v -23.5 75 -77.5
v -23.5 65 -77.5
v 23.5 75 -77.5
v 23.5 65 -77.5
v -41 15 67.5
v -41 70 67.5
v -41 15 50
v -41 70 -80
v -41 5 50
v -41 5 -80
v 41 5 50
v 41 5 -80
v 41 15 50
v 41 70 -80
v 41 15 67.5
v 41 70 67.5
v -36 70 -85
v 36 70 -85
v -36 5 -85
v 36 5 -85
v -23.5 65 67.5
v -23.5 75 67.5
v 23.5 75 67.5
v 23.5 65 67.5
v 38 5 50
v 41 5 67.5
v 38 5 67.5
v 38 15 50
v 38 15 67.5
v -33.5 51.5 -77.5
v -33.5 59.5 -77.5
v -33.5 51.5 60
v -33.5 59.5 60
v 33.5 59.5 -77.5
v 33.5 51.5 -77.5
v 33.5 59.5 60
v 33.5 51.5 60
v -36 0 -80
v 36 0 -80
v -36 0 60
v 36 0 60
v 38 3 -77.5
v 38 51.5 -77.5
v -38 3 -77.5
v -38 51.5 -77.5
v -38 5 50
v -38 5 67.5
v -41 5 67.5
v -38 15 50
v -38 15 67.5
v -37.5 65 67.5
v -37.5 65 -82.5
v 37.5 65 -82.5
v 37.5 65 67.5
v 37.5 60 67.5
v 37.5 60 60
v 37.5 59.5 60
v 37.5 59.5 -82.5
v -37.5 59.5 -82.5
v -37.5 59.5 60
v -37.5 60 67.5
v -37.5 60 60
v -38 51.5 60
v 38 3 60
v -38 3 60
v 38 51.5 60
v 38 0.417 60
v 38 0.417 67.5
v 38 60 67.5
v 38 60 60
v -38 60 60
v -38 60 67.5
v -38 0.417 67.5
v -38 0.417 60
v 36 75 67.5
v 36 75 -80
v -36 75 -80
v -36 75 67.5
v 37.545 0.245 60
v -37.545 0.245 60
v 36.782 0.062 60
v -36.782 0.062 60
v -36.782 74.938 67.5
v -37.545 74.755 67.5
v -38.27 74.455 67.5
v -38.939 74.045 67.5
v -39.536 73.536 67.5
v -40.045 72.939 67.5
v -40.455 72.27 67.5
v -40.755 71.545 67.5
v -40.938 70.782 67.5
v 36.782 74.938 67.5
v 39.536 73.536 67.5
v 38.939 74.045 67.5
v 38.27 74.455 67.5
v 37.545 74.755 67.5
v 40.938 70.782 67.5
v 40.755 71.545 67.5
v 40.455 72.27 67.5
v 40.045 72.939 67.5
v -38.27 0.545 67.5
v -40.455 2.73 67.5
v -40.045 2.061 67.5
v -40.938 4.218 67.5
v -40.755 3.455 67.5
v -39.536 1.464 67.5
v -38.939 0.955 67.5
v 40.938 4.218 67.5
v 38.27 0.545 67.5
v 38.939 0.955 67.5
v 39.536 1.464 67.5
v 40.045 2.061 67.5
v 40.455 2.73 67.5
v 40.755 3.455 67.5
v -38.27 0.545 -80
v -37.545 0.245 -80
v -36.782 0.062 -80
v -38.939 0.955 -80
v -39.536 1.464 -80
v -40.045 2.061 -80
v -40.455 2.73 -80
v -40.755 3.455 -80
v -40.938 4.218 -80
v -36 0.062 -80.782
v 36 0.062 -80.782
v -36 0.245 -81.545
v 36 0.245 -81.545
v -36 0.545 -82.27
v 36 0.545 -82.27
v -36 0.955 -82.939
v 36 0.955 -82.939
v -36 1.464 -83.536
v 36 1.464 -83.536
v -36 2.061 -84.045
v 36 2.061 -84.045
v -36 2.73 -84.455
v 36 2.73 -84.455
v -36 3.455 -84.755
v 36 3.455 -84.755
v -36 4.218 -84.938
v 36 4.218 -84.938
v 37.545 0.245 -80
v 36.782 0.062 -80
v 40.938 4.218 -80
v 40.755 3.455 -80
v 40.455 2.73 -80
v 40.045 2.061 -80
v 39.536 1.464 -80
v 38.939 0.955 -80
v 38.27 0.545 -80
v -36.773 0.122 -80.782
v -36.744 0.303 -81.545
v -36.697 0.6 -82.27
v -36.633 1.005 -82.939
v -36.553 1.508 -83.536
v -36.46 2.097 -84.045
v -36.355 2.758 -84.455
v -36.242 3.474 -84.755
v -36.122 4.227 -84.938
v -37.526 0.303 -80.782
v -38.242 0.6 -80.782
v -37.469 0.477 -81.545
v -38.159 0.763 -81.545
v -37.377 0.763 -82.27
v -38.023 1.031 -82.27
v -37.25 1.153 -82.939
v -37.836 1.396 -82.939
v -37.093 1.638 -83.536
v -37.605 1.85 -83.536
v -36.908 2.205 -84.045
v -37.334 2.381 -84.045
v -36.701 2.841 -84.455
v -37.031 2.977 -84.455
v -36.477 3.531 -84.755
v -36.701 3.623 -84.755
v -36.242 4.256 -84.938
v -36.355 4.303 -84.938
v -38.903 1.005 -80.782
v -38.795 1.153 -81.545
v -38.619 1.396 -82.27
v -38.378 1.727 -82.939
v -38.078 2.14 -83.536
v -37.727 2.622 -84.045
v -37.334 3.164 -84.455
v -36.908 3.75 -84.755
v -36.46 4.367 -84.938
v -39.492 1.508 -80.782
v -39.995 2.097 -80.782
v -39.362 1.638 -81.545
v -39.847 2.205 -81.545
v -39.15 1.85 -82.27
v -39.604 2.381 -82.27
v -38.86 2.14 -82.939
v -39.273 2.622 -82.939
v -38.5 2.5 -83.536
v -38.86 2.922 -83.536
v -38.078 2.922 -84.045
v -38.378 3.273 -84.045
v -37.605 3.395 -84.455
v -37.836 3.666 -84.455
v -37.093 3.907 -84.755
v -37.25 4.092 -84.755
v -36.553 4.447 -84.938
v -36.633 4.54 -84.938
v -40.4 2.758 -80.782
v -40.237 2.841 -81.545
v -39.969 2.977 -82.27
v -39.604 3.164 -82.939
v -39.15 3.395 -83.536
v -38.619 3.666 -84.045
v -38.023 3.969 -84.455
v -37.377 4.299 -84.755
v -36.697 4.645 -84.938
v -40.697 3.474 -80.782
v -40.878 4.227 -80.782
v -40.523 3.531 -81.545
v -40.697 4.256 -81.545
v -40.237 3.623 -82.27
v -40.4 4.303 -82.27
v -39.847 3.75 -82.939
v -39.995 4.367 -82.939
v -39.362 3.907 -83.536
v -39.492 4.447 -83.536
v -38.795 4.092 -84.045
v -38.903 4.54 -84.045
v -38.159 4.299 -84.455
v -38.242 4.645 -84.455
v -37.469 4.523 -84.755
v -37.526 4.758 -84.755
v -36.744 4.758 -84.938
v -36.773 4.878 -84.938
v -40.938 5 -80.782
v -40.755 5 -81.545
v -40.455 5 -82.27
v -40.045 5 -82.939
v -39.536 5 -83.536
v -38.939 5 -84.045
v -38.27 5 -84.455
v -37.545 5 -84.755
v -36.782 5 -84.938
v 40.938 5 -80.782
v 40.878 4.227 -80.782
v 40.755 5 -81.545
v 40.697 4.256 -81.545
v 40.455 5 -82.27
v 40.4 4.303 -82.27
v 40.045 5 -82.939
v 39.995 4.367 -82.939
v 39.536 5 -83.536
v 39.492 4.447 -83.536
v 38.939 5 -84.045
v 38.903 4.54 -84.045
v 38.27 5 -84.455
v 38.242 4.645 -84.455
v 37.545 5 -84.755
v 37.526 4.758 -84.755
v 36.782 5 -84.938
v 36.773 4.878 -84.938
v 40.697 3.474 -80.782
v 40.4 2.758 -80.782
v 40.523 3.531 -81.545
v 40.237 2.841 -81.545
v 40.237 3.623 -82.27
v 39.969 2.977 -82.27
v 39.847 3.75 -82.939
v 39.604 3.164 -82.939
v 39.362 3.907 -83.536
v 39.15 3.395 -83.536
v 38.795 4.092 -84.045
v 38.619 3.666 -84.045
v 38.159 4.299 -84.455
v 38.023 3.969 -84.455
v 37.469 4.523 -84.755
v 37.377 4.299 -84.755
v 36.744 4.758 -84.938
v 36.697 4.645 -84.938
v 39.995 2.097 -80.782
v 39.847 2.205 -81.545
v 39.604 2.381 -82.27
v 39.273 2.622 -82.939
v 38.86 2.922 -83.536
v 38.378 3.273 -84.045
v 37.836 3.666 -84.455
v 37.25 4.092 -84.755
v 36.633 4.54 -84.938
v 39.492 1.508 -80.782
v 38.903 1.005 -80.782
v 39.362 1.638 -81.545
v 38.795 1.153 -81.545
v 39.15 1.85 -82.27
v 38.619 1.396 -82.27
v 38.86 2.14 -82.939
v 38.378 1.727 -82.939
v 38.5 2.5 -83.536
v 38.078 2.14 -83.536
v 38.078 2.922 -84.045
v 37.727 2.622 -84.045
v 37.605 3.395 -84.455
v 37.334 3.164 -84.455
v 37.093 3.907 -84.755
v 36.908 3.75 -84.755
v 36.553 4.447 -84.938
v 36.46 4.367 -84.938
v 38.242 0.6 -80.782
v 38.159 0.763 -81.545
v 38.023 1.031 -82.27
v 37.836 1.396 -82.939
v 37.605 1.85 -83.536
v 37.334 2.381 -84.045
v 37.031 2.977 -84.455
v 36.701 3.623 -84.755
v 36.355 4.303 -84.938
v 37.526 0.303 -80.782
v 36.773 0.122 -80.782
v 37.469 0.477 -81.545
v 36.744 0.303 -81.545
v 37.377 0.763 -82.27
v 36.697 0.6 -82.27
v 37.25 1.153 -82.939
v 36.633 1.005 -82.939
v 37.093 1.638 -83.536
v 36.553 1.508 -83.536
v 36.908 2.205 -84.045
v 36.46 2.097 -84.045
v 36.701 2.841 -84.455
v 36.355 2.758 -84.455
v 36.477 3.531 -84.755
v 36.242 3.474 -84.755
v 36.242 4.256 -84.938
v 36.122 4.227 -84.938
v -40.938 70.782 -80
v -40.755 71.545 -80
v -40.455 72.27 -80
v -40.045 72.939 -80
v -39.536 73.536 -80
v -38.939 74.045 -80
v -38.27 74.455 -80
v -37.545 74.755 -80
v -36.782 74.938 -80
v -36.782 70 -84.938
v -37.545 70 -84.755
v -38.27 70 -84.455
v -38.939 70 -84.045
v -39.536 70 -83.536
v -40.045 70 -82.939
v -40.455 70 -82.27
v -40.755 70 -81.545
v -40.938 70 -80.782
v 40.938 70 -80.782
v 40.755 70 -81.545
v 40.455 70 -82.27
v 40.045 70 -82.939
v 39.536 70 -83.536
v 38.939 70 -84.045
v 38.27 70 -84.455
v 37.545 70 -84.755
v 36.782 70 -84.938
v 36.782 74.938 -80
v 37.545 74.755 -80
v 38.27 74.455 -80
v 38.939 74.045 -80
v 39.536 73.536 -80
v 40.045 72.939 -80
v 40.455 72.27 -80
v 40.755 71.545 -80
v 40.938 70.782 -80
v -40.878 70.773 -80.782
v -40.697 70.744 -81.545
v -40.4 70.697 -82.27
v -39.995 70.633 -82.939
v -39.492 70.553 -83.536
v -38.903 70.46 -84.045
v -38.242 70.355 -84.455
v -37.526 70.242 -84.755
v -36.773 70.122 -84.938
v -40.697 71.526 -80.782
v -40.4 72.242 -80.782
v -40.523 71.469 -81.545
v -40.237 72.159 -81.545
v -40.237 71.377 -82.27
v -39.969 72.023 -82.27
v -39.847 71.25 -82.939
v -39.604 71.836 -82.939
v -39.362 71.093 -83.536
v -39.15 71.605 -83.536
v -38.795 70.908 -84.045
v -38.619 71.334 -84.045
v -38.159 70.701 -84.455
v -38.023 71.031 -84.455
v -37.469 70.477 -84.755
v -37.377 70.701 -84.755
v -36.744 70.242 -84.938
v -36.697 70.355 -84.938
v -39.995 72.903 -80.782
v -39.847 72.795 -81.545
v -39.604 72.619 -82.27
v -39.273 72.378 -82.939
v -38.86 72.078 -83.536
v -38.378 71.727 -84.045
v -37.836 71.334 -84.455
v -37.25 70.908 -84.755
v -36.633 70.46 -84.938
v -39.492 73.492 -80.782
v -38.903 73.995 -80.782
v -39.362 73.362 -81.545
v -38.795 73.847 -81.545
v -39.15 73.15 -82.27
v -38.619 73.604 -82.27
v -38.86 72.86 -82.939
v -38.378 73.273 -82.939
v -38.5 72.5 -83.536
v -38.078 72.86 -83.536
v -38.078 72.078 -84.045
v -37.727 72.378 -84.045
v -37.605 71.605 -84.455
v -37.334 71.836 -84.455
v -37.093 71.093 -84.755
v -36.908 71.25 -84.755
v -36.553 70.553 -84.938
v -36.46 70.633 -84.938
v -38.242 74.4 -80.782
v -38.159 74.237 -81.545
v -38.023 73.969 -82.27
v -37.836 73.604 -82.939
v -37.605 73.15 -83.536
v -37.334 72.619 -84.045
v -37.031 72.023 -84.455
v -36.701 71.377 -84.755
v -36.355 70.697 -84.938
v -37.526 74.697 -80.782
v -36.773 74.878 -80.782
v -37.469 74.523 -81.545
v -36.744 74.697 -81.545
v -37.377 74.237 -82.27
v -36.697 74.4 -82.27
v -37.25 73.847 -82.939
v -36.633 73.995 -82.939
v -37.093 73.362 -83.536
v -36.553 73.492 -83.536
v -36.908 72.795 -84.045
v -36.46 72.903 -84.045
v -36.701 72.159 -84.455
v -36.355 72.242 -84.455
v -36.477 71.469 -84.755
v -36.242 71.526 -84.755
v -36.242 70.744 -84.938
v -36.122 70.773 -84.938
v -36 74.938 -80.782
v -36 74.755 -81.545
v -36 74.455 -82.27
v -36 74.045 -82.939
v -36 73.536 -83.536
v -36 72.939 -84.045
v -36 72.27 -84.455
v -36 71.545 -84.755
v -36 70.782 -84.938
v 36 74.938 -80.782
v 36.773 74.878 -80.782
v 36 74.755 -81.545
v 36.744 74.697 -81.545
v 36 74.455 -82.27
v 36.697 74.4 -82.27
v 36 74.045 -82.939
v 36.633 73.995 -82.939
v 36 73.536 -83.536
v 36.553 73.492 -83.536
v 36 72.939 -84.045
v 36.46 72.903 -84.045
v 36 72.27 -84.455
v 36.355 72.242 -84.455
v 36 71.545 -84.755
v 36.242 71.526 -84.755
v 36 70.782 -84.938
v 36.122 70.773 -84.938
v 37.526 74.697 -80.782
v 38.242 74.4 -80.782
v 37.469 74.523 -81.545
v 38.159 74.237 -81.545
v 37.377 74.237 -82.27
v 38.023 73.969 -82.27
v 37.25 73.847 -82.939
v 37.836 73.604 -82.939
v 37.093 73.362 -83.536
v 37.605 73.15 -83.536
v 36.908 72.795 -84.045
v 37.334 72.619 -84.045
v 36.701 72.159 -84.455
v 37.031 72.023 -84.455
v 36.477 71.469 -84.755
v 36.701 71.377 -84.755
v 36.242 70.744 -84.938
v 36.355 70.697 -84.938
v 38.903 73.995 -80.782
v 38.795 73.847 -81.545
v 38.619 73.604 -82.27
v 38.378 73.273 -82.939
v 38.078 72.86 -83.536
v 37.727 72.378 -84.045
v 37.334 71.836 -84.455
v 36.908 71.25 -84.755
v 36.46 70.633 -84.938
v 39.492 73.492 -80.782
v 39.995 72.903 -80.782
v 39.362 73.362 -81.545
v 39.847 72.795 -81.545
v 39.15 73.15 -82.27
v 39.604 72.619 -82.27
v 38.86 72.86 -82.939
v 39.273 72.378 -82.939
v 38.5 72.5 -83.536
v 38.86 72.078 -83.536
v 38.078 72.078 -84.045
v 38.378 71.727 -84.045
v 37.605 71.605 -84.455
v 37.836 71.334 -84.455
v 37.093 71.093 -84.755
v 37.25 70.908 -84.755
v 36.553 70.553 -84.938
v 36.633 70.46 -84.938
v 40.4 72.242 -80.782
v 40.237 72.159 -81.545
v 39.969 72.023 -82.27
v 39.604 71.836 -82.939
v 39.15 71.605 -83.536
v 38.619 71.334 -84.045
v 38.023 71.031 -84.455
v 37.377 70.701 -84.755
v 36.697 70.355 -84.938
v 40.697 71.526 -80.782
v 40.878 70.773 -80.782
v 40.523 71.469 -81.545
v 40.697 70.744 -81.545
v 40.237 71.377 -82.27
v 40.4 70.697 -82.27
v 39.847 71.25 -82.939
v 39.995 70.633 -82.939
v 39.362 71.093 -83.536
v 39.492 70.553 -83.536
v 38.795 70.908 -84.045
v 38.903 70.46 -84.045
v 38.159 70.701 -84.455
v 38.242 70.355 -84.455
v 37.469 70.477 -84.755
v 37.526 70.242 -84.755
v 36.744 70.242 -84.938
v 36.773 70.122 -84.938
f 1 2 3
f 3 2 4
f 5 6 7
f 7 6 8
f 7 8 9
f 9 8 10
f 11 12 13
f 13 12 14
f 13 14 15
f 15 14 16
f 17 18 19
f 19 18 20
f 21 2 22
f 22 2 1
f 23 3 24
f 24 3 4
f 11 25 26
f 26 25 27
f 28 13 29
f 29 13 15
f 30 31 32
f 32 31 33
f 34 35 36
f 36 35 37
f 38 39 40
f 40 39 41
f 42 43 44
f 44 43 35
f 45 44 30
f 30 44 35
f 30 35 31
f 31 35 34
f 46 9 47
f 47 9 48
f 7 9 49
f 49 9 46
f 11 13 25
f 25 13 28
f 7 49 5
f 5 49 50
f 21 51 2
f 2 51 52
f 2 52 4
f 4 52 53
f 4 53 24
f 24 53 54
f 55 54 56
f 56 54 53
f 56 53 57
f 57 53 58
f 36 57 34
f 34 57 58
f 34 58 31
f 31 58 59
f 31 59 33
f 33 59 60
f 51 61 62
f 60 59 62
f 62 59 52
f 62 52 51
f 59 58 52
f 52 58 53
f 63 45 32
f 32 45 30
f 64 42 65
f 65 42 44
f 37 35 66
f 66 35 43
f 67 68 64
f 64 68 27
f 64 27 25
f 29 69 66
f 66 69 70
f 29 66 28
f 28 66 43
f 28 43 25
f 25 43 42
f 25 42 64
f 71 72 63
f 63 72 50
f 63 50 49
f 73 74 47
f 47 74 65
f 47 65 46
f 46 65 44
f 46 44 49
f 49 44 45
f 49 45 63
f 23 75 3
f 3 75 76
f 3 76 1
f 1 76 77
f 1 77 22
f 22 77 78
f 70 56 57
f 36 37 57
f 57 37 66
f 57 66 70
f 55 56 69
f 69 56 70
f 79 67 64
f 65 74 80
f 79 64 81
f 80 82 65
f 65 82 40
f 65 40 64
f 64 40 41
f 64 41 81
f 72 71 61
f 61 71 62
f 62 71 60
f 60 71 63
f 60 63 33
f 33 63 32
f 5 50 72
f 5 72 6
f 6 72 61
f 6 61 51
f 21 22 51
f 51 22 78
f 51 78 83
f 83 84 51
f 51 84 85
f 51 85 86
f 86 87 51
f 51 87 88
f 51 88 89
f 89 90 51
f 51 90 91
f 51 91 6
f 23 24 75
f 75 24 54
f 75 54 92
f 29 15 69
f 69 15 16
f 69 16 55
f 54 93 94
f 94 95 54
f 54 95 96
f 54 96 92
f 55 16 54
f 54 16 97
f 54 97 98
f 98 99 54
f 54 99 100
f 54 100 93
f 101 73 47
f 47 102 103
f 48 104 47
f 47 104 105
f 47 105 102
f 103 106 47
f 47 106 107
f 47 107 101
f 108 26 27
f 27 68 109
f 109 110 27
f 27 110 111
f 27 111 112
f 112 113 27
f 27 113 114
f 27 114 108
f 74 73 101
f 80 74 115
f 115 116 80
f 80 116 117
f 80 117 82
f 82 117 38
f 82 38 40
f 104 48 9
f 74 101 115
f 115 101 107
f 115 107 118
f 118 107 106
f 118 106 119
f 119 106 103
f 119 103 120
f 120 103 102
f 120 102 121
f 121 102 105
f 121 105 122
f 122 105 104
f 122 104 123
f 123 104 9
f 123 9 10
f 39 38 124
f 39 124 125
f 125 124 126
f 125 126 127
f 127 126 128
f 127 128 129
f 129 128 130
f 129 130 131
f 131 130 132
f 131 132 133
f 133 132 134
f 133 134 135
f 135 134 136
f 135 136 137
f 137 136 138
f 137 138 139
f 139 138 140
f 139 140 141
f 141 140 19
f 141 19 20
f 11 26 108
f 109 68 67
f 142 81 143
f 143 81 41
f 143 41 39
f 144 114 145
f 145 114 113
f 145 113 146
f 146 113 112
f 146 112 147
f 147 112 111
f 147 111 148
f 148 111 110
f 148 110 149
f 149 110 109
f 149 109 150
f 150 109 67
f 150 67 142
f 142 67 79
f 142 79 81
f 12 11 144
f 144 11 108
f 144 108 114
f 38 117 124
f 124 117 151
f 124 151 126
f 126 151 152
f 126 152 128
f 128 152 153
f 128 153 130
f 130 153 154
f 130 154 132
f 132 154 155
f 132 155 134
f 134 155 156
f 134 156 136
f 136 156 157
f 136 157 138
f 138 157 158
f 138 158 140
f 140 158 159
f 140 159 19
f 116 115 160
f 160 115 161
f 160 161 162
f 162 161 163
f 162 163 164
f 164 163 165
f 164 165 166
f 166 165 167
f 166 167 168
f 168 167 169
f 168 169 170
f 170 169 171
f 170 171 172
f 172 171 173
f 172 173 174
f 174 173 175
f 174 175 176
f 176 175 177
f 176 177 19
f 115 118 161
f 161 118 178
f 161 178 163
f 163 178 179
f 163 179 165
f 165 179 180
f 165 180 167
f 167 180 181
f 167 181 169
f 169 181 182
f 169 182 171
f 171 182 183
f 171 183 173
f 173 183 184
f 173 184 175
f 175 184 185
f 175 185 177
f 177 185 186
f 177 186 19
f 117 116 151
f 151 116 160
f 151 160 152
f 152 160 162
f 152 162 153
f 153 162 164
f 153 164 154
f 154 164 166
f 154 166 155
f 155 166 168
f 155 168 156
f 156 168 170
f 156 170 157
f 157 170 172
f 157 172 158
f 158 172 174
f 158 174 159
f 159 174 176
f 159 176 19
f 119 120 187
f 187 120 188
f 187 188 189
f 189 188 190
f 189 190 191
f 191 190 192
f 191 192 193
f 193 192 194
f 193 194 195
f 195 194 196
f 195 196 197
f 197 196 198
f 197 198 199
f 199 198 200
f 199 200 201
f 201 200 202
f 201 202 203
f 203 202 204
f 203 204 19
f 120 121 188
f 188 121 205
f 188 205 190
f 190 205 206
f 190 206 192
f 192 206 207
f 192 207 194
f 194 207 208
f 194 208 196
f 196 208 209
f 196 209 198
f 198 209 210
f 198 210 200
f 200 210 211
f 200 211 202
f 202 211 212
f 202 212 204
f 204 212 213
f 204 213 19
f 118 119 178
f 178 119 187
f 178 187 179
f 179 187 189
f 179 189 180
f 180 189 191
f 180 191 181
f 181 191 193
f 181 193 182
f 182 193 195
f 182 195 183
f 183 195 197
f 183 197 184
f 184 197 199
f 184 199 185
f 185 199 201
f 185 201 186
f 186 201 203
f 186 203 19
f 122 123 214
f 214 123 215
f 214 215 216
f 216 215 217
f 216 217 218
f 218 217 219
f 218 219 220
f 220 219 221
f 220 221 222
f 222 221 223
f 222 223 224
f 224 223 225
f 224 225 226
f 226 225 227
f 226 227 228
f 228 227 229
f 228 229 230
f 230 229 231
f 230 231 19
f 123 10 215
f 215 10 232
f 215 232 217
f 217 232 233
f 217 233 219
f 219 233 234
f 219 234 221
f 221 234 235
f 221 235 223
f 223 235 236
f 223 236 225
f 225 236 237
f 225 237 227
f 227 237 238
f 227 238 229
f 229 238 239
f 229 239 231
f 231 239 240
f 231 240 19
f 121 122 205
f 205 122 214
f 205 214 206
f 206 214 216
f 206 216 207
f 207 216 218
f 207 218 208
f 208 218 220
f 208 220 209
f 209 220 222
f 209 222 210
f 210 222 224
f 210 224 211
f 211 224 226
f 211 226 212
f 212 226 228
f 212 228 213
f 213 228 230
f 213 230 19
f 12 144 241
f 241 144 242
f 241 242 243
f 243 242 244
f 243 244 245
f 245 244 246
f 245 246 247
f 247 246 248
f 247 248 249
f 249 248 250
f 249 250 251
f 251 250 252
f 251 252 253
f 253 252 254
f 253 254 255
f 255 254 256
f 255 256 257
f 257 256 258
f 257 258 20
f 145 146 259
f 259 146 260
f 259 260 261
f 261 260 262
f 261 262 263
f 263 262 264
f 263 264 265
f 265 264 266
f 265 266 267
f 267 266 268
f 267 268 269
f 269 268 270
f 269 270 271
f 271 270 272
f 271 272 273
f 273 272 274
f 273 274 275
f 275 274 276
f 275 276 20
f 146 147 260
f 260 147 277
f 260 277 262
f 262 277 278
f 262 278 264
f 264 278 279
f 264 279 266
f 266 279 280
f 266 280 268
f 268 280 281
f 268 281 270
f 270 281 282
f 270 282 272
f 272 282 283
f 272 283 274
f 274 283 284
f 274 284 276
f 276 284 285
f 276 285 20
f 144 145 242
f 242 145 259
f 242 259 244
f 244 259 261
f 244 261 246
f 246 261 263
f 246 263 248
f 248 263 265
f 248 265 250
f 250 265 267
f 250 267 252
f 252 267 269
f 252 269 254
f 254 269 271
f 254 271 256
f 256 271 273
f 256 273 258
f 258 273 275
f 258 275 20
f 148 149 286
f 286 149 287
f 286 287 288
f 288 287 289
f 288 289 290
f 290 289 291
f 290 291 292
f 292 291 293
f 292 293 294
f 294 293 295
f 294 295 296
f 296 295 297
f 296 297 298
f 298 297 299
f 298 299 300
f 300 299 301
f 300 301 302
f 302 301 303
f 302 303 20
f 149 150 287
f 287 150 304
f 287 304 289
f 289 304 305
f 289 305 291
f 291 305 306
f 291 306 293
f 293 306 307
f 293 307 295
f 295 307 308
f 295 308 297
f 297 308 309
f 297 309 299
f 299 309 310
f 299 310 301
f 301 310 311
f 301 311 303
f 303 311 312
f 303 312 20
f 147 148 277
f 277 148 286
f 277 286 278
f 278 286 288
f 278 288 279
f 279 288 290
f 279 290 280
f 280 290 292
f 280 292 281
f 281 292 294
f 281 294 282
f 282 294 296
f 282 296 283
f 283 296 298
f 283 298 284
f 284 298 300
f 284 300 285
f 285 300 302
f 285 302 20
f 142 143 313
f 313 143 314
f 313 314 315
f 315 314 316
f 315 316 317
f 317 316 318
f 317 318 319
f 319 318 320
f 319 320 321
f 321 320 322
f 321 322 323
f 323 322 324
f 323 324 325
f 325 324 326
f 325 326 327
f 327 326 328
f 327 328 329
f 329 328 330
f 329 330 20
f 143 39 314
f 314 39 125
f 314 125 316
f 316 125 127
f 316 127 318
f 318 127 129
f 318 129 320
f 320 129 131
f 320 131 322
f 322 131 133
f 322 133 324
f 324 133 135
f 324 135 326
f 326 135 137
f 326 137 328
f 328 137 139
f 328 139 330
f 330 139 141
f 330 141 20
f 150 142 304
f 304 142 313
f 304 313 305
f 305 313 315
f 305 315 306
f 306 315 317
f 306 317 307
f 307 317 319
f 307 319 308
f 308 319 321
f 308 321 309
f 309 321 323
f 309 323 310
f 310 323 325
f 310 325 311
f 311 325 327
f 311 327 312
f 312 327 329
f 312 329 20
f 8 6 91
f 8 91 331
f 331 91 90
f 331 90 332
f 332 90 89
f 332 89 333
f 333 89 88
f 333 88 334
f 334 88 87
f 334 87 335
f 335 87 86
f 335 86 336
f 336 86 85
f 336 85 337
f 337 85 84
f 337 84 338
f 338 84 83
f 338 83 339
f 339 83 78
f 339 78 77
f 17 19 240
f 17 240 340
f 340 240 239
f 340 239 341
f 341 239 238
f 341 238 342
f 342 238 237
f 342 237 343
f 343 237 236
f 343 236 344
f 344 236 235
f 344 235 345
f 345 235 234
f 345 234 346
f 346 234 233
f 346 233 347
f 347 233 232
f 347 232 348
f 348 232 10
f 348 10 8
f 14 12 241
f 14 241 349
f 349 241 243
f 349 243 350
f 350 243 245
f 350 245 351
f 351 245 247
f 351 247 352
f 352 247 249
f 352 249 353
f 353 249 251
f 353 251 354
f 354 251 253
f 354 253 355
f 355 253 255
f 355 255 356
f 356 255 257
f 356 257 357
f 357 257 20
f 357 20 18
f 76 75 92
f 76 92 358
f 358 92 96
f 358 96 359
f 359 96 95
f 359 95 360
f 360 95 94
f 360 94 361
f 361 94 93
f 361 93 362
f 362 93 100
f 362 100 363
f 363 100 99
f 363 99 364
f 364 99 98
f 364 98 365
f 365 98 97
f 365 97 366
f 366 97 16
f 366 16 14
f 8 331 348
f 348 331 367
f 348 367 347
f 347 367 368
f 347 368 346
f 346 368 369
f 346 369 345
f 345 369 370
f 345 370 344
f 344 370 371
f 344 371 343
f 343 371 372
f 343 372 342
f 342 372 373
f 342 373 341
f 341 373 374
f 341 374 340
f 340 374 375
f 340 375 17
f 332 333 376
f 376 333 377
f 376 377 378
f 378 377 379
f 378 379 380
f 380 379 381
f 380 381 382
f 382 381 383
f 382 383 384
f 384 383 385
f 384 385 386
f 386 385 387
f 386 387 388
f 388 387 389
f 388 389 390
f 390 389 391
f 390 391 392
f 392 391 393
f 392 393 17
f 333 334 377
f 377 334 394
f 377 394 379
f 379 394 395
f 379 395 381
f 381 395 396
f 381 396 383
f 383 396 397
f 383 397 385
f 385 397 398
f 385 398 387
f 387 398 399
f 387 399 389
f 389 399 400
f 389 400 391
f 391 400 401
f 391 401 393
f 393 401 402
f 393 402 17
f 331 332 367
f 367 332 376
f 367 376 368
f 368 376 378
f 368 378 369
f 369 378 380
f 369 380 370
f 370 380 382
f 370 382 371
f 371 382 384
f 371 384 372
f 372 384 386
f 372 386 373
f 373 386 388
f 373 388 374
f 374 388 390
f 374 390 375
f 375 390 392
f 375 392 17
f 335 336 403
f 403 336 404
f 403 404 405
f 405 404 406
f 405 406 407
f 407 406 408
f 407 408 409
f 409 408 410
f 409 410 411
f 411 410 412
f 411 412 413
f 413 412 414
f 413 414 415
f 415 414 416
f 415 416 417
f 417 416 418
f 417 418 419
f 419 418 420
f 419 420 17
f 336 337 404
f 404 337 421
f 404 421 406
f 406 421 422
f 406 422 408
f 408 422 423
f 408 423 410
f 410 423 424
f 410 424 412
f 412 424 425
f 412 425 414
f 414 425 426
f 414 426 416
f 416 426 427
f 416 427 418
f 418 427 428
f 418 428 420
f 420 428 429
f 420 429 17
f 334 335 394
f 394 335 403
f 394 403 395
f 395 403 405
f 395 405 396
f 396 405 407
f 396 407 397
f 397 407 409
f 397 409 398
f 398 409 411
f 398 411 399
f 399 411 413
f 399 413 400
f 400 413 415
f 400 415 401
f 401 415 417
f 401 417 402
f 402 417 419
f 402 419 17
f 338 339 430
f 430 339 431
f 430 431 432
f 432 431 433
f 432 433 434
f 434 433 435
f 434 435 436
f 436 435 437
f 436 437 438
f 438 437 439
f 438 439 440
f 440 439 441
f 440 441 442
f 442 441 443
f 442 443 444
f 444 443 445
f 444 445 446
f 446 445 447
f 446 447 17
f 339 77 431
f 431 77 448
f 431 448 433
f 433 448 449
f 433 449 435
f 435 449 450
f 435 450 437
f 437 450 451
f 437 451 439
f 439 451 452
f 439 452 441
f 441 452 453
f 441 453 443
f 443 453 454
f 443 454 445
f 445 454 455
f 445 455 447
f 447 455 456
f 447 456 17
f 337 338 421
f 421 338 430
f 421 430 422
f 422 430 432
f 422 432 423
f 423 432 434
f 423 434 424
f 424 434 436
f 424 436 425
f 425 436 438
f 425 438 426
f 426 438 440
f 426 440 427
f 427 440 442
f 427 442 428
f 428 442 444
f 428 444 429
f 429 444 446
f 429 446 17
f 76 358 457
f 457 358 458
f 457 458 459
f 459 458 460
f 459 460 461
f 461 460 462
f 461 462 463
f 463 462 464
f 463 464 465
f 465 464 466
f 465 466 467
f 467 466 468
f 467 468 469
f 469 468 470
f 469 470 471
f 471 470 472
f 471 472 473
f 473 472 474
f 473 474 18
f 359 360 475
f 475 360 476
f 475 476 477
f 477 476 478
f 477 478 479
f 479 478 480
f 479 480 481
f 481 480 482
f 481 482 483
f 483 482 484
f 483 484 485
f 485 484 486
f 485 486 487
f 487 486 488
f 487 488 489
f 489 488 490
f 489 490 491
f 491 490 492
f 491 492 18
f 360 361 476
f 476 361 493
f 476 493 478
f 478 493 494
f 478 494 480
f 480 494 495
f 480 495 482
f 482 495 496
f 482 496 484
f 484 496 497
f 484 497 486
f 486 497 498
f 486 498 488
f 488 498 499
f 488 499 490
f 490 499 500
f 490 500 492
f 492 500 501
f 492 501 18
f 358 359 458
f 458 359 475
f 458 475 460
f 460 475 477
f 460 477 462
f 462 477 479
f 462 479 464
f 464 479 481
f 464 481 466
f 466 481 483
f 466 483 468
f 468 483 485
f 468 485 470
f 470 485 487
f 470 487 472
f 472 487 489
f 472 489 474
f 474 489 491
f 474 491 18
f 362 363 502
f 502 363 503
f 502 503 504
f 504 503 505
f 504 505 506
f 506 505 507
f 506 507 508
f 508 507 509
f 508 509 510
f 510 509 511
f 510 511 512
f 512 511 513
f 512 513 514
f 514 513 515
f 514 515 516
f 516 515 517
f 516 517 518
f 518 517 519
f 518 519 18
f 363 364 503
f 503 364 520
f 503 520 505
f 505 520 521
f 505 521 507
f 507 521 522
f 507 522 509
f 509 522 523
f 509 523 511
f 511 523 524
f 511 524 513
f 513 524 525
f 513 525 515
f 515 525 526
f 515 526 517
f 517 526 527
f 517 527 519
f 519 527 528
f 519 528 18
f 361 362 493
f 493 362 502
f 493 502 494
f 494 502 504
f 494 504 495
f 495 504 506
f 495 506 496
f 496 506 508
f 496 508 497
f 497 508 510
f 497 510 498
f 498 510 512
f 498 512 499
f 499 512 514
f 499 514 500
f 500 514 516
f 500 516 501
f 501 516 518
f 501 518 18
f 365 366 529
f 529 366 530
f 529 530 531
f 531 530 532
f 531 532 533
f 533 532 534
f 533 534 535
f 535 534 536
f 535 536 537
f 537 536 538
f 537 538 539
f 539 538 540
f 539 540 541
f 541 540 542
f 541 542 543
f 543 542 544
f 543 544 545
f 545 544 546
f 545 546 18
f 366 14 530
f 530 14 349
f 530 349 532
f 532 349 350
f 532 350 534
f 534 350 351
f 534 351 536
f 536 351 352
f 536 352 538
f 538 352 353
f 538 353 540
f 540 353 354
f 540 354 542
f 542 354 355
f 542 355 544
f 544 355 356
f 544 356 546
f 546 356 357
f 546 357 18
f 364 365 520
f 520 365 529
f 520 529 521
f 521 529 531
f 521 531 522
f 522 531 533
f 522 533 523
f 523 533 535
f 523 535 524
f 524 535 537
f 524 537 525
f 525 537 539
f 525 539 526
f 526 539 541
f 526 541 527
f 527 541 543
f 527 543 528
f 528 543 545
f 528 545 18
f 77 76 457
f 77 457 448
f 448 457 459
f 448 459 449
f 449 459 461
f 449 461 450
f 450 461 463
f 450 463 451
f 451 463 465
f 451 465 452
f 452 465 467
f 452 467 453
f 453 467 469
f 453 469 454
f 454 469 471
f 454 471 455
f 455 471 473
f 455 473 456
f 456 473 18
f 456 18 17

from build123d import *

# Parameters (mm, degrees)
CROQUIS1_W              = 82
CROQUIS1_H              = 155
SALIENTE_EXTRUIR1_DEPTH = 5
CROQUIS1_3_W            = 82
CROQUIS1_3_H            = 155
CROQUIS1_3_W_2          = 67
CROQUIS1_3_H_2          = 142.5
SALIENTE_EXTRUIR2_DEPTH = 80
CROQUIS2_W              = 20
CROQUIS2_H              = 10
CORTAR_EXTRUIR1_DEPTH   = 120
CROQUIS4_W              = 75
CROQUIS4_H              = 5.5
CORTAR_EXTRUIR2_DEPTH   = 152.5
CROQUIS5_W              = 67
CROQUIS5_H              = 5
CORTAR_EXTRUIR4_DEPTH   = 140
CROQUIS6_W              = 147.5
CROQUIS6_H              = 15
SALIENTE_EXTRUIR3_DEPTH = 10
CORTAR_EXTRUIR5_DEPTH   = 147.5
CROQUIS7_3_W            = 82
CROQUIS7_3_H            = 5
CORTAR_EXTRUIR6_DEPTH   = 167.5
CROQUIS8_W              = 76
CROQUIS8_H              = 10
CORTAR_EXTRUIR7_DEPTH   = 60
CROQUIS9_W              = 82
CROQUIS9_H              = 2.5
CORTAR_EXTRUIR8_DEPTH   = 300
REDONDEO1_R             = 5


with BuildPart() as part:
    # Croquis1 → Saliente-Extruir1 (new body)
    with BuildSketch(Plane(origin=(0, 0, 0), x_dir=(1, 0, 0), z_dir=(0, 1, 0))):
        with Locations((0, 7.5)):
            Rectangle(CROQUIS1_W, CROQUIS1_H)
    extrude(amount=SALIENTE_EXTRUIR1_DEPTH)

    # Croquis1<3> → Saliente-Extruir2 (add)
    with BuildSketch(Plane(origin=(0, 0, 0), x_dir=(1, 0, 0), z_dir=(0, 1, 0))):
        with Locations((0, 7.5)):
            Rectangle(CROQUIS1_3_W, CROQUIS1_3_H)
        with Locations((0, 6.25)):
            Rectangle(CROQUIS1_3_W_2, CROQUIS1_3_H_2, mode=Mode.SUBTRACT)
    extrude(amount=SALIENTE_EXTRUIR2_DEPTH)

    # Croquis2 → Cortar-Extruir1 (cut)
    with BuildSketch(Plane.ZY.offset(41)):
        with Locations((60, 10)):
            Rectangle(CROQUIS2_W, CROQUIS2_H)
    extrude(amount=-CORTAR_EXTRUIR1_DEPTH, mode=Mode.SUBTRACT)

    # Croquis4 → Cortar-Extruir2 (cut)
    with BuildSketch(Plane.XY.offset(70)):
        with Locations((0, 62.25)):
            Rectangle(CROQUIS4_W, CROQUIS4_H)
    extrude(amount=-CORTAR_EXTRUIR2_DEPTH, mode=Mode.SUBTRACT)

    # Croquis5 → Cortar-Extruir4 (cut)
    with BuildSketch(Plane(origin=(0, 80, 0), x_dir=(1, 0, 0), z_dir=(0, 1, 0))):
        with Locations((0, -67.5)):
            Rectangle(CROQUIS5_W, CROQUIS5_H)
    extrude(amount=-CORTAR_EXTRUIR4_DEPTH, mode=Mode.SUBTRACT)

    # Croquis6 → Saliente-Extruir3 (add)
    with BuildSketch(Plane(origin=(-33.5, 0, 0), x_dir=(0, 0, -1), z_dir=(1, 0, 0))):
        with Locations((3.75, 72.5)):
            Rectangle(CROQUIS6_W, CROQUIS6_H)
    saliente_extruir3 = extrude(amount=SALIENTE_EXTRUIR3_DEPTH)

    # Simetría1: Saliente-Extruir3 across plane
    add(saliente_extruir3.mirror(Plane(origin=(0, 0, 0), x_dir=(0, 0, 1), z_dir=(1, 0, 0))))

    # Croquis7 → Cortar-Extruir5 (cut)
    with BuildSketch(Plane.XY.offset(70)):
        Polygon((38, 51.5), (-33.5, 51.5), (-38, 51.5), (-38, 3), (38, 3), align=None)
    extrude(amount=-CORTAR_EXTRUIR5_DEPTH, mode=Mode.SUBTRACT)

    # Croquis7<3> → Cortar-Extruir6 (cut)
    with BuildSketch(Plane.XY.offset(70)):
        with Locations((0, 77.5)):
            Rectangle(CROQUIS7_3_W, CROQUIS7_3_H)
    extrude(amount=-CORTAR_EXTRUIR6_DEPTH, mode=Mode.SUBTRACT)

    # Croquis8 → Cortar-Extruir7 (cut)
    with BuildSketch(Plane(origin=(0, 0, 0), x_dir=(-1, 0, 0), z_dir=(0, -1, 0))):
        with Locations((0, -65)):
            Rectangle(CROQUIS8_W, CROQUIS8_H)
    extrude(amount=-CORTAR_EXTRUIR7_DEPTH, mode=Mode.SUBTRACT)

    # Croquis9 → Cortar-Extruir8 (cut)
    with BuildSketch(Plane.XZ):
        with Locations((0, 68.75)):
            Rectangle(CROQUIS9_W, CROQUIS9_H)
    extrude(amount=-CORTAR_EXTRUIR8_DEPTH, mode=Mode.SUBTRACT)

    # Redondeo1
    redondeo1_edges = [part.edges().sort_by_distance(p)[0] for p in [
        (0, 75, -85),
        (41, 75, -8.75),
        (-41, 75, -8.75),
        (-41, 0, -8.75),
        (41, 0, -8.75),
        (0, 0, -85),
        (-41, 37.5, -85),
        (41, 37.5, -85),
    ]]
    fillet(redondeo1_edges, radius=REDONDEO1_R)


solid = part.part
